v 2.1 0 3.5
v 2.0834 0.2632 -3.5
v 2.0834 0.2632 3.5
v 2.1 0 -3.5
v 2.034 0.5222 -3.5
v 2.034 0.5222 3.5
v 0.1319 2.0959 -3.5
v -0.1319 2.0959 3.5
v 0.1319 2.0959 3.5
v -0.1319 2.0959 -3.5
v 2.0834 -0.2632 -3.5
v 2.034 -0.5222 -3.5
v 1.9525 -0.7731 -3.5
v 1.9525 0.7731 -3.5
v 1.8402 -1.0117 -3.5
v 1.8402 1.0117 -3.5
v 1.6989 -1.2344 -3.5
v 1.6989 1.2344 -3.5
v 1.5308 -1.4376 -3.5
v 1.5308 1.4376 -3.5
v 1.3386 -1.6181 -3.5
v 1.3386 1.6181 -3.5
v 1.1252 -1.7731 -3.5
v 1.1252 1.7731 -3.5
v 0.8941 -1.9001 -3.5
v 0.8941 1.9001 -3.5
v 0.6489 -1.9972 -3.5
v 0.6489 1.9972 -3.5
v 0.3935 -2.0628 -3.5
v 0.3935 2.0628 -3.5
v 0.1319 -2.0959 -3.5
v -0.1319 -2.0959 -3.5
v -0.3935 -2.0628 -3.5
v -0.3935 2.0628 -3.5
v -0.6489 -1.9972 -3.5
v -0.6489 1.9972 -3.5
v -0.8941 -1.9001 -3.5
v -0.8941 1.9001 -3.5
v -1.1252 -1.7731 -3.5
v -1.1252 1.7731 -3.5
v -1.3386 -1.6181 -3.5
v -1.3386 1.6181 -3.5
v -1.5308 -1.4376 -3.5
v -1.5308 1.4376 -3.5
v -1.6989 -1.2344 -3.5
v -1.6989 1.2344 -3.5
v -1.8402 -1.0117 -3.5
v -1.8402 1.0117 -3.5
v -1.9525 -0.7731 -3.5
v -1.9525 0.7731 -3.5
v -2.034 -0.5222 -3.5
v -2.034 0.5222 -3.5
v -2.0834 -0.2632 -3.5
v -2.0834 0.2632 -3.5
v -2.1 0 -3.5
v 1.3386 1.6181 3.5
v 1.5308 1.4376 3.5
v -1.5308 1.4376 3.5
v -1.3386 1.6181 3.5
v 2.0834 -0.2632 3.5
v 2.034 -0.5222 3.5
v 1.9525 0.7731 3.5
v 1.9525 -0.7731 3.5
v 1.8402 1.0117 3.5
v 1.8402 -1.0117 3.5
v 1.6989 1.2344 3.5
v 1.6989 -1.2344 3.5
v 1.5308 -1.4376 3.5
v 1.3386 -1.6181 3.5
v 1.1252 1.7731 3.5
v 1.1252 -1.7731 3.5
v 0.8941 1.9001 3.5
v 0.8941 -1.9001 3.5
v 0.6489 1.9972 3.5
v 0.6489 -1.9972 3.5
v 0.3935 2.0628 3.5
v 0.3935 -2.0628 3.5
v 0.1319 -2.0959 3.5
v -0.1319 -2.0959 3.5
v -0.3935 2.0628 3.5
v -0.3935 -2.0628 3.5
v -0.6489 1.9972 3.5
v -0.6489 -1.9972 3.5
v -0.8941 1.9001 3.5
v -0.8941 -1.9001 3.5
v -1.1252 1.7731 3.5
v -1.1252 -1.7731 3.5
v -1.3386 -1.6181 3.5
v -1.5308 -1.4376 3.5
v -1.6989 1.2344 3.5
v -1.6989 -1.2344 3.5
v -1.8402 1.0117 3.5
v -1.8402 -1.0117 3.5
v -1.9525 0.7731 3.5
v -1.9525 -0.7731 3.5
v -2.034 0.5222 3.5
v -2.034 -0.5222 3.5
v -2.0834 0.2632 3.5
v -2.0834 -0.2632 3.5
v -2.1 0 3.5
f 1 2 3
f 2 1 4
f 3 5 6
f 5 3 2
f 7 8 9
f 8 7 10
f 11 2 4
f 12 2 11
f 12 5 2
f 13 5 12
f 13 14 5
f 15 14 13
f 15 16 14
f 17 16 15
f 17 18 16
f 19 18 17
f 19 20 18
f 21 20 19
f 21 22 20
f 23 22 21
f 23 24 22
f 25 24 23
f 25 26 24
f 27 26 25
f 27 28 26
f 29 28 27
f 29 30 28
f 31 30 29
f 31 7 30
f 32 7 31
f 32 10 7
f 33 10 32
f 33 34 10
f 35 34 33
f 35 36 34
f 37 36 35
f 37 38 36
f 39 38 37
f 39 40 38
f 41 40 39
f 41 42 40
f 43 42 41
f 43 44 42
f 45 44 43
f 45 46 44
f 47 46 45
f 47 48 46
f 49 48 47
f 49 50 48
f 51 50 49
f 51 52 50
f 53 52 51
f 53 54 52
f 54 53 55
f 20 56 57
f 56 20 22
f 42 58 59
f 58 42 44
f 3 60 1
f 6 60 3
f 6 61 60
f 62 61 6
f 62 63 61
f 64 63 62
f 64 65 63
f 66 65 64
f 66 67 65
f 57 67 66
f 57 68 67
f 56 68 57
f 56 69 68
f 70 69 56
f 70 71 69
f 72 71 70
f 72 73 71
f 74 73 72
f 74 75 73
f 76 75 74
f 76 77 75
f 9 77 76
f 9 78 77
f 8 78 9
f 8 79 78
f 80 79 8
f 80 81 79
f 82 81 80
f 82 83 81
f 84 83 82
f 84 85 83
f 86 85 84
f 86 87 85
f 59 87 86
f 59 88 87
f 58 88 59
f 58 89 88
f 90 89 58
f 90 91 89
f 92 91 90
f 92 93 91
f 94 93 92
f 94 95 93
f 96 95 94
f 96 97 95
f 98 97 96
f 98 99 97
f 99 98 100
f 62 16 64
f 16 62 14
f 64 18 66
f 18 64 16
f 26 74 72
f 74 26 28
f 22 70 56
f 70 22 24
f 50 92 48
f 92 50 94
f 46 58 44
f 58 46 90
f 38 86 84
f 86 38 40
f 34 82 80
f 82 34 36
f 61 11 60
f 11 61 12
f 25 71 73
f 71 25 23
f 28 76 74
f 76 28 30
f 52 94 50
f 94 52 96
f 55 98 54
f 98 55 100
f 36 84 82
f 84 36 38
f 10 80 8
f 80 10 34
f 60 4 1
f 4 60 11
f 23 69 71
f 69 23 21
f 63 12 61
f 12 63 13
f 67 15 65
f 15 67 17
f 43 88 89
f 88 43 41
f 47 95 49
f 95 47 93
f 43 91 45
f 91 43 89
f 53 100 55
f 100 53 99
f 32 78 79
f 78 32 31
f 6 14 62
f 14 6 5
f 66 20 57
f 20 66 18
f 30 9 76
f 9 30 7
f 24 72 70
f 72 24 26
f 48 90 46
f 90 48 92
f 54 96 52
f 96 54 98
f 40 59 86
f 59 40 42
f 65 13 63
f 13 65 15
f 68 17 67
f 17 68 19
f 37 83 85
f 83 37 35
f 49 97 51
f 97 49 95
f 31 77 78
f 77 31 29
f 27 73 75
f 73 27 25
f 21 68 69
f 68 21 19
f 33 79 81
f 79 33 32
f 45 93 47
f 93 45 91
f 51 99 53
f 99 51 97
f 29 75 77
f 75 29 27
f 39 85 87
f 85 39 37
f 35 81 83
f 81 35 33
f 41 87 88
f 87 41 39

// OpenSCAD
$fn = 50;


difference() {
	union() {
		translate(v = [0, 0, -3.5000000000]) {
			cylinder(h = 7, r = 2.1000000000);
		}
	}
	union() {
		translate(v = [0, 0, -100.0000000000]) {
			cylinder(h = 200, r = 0);
		}
	}
}
